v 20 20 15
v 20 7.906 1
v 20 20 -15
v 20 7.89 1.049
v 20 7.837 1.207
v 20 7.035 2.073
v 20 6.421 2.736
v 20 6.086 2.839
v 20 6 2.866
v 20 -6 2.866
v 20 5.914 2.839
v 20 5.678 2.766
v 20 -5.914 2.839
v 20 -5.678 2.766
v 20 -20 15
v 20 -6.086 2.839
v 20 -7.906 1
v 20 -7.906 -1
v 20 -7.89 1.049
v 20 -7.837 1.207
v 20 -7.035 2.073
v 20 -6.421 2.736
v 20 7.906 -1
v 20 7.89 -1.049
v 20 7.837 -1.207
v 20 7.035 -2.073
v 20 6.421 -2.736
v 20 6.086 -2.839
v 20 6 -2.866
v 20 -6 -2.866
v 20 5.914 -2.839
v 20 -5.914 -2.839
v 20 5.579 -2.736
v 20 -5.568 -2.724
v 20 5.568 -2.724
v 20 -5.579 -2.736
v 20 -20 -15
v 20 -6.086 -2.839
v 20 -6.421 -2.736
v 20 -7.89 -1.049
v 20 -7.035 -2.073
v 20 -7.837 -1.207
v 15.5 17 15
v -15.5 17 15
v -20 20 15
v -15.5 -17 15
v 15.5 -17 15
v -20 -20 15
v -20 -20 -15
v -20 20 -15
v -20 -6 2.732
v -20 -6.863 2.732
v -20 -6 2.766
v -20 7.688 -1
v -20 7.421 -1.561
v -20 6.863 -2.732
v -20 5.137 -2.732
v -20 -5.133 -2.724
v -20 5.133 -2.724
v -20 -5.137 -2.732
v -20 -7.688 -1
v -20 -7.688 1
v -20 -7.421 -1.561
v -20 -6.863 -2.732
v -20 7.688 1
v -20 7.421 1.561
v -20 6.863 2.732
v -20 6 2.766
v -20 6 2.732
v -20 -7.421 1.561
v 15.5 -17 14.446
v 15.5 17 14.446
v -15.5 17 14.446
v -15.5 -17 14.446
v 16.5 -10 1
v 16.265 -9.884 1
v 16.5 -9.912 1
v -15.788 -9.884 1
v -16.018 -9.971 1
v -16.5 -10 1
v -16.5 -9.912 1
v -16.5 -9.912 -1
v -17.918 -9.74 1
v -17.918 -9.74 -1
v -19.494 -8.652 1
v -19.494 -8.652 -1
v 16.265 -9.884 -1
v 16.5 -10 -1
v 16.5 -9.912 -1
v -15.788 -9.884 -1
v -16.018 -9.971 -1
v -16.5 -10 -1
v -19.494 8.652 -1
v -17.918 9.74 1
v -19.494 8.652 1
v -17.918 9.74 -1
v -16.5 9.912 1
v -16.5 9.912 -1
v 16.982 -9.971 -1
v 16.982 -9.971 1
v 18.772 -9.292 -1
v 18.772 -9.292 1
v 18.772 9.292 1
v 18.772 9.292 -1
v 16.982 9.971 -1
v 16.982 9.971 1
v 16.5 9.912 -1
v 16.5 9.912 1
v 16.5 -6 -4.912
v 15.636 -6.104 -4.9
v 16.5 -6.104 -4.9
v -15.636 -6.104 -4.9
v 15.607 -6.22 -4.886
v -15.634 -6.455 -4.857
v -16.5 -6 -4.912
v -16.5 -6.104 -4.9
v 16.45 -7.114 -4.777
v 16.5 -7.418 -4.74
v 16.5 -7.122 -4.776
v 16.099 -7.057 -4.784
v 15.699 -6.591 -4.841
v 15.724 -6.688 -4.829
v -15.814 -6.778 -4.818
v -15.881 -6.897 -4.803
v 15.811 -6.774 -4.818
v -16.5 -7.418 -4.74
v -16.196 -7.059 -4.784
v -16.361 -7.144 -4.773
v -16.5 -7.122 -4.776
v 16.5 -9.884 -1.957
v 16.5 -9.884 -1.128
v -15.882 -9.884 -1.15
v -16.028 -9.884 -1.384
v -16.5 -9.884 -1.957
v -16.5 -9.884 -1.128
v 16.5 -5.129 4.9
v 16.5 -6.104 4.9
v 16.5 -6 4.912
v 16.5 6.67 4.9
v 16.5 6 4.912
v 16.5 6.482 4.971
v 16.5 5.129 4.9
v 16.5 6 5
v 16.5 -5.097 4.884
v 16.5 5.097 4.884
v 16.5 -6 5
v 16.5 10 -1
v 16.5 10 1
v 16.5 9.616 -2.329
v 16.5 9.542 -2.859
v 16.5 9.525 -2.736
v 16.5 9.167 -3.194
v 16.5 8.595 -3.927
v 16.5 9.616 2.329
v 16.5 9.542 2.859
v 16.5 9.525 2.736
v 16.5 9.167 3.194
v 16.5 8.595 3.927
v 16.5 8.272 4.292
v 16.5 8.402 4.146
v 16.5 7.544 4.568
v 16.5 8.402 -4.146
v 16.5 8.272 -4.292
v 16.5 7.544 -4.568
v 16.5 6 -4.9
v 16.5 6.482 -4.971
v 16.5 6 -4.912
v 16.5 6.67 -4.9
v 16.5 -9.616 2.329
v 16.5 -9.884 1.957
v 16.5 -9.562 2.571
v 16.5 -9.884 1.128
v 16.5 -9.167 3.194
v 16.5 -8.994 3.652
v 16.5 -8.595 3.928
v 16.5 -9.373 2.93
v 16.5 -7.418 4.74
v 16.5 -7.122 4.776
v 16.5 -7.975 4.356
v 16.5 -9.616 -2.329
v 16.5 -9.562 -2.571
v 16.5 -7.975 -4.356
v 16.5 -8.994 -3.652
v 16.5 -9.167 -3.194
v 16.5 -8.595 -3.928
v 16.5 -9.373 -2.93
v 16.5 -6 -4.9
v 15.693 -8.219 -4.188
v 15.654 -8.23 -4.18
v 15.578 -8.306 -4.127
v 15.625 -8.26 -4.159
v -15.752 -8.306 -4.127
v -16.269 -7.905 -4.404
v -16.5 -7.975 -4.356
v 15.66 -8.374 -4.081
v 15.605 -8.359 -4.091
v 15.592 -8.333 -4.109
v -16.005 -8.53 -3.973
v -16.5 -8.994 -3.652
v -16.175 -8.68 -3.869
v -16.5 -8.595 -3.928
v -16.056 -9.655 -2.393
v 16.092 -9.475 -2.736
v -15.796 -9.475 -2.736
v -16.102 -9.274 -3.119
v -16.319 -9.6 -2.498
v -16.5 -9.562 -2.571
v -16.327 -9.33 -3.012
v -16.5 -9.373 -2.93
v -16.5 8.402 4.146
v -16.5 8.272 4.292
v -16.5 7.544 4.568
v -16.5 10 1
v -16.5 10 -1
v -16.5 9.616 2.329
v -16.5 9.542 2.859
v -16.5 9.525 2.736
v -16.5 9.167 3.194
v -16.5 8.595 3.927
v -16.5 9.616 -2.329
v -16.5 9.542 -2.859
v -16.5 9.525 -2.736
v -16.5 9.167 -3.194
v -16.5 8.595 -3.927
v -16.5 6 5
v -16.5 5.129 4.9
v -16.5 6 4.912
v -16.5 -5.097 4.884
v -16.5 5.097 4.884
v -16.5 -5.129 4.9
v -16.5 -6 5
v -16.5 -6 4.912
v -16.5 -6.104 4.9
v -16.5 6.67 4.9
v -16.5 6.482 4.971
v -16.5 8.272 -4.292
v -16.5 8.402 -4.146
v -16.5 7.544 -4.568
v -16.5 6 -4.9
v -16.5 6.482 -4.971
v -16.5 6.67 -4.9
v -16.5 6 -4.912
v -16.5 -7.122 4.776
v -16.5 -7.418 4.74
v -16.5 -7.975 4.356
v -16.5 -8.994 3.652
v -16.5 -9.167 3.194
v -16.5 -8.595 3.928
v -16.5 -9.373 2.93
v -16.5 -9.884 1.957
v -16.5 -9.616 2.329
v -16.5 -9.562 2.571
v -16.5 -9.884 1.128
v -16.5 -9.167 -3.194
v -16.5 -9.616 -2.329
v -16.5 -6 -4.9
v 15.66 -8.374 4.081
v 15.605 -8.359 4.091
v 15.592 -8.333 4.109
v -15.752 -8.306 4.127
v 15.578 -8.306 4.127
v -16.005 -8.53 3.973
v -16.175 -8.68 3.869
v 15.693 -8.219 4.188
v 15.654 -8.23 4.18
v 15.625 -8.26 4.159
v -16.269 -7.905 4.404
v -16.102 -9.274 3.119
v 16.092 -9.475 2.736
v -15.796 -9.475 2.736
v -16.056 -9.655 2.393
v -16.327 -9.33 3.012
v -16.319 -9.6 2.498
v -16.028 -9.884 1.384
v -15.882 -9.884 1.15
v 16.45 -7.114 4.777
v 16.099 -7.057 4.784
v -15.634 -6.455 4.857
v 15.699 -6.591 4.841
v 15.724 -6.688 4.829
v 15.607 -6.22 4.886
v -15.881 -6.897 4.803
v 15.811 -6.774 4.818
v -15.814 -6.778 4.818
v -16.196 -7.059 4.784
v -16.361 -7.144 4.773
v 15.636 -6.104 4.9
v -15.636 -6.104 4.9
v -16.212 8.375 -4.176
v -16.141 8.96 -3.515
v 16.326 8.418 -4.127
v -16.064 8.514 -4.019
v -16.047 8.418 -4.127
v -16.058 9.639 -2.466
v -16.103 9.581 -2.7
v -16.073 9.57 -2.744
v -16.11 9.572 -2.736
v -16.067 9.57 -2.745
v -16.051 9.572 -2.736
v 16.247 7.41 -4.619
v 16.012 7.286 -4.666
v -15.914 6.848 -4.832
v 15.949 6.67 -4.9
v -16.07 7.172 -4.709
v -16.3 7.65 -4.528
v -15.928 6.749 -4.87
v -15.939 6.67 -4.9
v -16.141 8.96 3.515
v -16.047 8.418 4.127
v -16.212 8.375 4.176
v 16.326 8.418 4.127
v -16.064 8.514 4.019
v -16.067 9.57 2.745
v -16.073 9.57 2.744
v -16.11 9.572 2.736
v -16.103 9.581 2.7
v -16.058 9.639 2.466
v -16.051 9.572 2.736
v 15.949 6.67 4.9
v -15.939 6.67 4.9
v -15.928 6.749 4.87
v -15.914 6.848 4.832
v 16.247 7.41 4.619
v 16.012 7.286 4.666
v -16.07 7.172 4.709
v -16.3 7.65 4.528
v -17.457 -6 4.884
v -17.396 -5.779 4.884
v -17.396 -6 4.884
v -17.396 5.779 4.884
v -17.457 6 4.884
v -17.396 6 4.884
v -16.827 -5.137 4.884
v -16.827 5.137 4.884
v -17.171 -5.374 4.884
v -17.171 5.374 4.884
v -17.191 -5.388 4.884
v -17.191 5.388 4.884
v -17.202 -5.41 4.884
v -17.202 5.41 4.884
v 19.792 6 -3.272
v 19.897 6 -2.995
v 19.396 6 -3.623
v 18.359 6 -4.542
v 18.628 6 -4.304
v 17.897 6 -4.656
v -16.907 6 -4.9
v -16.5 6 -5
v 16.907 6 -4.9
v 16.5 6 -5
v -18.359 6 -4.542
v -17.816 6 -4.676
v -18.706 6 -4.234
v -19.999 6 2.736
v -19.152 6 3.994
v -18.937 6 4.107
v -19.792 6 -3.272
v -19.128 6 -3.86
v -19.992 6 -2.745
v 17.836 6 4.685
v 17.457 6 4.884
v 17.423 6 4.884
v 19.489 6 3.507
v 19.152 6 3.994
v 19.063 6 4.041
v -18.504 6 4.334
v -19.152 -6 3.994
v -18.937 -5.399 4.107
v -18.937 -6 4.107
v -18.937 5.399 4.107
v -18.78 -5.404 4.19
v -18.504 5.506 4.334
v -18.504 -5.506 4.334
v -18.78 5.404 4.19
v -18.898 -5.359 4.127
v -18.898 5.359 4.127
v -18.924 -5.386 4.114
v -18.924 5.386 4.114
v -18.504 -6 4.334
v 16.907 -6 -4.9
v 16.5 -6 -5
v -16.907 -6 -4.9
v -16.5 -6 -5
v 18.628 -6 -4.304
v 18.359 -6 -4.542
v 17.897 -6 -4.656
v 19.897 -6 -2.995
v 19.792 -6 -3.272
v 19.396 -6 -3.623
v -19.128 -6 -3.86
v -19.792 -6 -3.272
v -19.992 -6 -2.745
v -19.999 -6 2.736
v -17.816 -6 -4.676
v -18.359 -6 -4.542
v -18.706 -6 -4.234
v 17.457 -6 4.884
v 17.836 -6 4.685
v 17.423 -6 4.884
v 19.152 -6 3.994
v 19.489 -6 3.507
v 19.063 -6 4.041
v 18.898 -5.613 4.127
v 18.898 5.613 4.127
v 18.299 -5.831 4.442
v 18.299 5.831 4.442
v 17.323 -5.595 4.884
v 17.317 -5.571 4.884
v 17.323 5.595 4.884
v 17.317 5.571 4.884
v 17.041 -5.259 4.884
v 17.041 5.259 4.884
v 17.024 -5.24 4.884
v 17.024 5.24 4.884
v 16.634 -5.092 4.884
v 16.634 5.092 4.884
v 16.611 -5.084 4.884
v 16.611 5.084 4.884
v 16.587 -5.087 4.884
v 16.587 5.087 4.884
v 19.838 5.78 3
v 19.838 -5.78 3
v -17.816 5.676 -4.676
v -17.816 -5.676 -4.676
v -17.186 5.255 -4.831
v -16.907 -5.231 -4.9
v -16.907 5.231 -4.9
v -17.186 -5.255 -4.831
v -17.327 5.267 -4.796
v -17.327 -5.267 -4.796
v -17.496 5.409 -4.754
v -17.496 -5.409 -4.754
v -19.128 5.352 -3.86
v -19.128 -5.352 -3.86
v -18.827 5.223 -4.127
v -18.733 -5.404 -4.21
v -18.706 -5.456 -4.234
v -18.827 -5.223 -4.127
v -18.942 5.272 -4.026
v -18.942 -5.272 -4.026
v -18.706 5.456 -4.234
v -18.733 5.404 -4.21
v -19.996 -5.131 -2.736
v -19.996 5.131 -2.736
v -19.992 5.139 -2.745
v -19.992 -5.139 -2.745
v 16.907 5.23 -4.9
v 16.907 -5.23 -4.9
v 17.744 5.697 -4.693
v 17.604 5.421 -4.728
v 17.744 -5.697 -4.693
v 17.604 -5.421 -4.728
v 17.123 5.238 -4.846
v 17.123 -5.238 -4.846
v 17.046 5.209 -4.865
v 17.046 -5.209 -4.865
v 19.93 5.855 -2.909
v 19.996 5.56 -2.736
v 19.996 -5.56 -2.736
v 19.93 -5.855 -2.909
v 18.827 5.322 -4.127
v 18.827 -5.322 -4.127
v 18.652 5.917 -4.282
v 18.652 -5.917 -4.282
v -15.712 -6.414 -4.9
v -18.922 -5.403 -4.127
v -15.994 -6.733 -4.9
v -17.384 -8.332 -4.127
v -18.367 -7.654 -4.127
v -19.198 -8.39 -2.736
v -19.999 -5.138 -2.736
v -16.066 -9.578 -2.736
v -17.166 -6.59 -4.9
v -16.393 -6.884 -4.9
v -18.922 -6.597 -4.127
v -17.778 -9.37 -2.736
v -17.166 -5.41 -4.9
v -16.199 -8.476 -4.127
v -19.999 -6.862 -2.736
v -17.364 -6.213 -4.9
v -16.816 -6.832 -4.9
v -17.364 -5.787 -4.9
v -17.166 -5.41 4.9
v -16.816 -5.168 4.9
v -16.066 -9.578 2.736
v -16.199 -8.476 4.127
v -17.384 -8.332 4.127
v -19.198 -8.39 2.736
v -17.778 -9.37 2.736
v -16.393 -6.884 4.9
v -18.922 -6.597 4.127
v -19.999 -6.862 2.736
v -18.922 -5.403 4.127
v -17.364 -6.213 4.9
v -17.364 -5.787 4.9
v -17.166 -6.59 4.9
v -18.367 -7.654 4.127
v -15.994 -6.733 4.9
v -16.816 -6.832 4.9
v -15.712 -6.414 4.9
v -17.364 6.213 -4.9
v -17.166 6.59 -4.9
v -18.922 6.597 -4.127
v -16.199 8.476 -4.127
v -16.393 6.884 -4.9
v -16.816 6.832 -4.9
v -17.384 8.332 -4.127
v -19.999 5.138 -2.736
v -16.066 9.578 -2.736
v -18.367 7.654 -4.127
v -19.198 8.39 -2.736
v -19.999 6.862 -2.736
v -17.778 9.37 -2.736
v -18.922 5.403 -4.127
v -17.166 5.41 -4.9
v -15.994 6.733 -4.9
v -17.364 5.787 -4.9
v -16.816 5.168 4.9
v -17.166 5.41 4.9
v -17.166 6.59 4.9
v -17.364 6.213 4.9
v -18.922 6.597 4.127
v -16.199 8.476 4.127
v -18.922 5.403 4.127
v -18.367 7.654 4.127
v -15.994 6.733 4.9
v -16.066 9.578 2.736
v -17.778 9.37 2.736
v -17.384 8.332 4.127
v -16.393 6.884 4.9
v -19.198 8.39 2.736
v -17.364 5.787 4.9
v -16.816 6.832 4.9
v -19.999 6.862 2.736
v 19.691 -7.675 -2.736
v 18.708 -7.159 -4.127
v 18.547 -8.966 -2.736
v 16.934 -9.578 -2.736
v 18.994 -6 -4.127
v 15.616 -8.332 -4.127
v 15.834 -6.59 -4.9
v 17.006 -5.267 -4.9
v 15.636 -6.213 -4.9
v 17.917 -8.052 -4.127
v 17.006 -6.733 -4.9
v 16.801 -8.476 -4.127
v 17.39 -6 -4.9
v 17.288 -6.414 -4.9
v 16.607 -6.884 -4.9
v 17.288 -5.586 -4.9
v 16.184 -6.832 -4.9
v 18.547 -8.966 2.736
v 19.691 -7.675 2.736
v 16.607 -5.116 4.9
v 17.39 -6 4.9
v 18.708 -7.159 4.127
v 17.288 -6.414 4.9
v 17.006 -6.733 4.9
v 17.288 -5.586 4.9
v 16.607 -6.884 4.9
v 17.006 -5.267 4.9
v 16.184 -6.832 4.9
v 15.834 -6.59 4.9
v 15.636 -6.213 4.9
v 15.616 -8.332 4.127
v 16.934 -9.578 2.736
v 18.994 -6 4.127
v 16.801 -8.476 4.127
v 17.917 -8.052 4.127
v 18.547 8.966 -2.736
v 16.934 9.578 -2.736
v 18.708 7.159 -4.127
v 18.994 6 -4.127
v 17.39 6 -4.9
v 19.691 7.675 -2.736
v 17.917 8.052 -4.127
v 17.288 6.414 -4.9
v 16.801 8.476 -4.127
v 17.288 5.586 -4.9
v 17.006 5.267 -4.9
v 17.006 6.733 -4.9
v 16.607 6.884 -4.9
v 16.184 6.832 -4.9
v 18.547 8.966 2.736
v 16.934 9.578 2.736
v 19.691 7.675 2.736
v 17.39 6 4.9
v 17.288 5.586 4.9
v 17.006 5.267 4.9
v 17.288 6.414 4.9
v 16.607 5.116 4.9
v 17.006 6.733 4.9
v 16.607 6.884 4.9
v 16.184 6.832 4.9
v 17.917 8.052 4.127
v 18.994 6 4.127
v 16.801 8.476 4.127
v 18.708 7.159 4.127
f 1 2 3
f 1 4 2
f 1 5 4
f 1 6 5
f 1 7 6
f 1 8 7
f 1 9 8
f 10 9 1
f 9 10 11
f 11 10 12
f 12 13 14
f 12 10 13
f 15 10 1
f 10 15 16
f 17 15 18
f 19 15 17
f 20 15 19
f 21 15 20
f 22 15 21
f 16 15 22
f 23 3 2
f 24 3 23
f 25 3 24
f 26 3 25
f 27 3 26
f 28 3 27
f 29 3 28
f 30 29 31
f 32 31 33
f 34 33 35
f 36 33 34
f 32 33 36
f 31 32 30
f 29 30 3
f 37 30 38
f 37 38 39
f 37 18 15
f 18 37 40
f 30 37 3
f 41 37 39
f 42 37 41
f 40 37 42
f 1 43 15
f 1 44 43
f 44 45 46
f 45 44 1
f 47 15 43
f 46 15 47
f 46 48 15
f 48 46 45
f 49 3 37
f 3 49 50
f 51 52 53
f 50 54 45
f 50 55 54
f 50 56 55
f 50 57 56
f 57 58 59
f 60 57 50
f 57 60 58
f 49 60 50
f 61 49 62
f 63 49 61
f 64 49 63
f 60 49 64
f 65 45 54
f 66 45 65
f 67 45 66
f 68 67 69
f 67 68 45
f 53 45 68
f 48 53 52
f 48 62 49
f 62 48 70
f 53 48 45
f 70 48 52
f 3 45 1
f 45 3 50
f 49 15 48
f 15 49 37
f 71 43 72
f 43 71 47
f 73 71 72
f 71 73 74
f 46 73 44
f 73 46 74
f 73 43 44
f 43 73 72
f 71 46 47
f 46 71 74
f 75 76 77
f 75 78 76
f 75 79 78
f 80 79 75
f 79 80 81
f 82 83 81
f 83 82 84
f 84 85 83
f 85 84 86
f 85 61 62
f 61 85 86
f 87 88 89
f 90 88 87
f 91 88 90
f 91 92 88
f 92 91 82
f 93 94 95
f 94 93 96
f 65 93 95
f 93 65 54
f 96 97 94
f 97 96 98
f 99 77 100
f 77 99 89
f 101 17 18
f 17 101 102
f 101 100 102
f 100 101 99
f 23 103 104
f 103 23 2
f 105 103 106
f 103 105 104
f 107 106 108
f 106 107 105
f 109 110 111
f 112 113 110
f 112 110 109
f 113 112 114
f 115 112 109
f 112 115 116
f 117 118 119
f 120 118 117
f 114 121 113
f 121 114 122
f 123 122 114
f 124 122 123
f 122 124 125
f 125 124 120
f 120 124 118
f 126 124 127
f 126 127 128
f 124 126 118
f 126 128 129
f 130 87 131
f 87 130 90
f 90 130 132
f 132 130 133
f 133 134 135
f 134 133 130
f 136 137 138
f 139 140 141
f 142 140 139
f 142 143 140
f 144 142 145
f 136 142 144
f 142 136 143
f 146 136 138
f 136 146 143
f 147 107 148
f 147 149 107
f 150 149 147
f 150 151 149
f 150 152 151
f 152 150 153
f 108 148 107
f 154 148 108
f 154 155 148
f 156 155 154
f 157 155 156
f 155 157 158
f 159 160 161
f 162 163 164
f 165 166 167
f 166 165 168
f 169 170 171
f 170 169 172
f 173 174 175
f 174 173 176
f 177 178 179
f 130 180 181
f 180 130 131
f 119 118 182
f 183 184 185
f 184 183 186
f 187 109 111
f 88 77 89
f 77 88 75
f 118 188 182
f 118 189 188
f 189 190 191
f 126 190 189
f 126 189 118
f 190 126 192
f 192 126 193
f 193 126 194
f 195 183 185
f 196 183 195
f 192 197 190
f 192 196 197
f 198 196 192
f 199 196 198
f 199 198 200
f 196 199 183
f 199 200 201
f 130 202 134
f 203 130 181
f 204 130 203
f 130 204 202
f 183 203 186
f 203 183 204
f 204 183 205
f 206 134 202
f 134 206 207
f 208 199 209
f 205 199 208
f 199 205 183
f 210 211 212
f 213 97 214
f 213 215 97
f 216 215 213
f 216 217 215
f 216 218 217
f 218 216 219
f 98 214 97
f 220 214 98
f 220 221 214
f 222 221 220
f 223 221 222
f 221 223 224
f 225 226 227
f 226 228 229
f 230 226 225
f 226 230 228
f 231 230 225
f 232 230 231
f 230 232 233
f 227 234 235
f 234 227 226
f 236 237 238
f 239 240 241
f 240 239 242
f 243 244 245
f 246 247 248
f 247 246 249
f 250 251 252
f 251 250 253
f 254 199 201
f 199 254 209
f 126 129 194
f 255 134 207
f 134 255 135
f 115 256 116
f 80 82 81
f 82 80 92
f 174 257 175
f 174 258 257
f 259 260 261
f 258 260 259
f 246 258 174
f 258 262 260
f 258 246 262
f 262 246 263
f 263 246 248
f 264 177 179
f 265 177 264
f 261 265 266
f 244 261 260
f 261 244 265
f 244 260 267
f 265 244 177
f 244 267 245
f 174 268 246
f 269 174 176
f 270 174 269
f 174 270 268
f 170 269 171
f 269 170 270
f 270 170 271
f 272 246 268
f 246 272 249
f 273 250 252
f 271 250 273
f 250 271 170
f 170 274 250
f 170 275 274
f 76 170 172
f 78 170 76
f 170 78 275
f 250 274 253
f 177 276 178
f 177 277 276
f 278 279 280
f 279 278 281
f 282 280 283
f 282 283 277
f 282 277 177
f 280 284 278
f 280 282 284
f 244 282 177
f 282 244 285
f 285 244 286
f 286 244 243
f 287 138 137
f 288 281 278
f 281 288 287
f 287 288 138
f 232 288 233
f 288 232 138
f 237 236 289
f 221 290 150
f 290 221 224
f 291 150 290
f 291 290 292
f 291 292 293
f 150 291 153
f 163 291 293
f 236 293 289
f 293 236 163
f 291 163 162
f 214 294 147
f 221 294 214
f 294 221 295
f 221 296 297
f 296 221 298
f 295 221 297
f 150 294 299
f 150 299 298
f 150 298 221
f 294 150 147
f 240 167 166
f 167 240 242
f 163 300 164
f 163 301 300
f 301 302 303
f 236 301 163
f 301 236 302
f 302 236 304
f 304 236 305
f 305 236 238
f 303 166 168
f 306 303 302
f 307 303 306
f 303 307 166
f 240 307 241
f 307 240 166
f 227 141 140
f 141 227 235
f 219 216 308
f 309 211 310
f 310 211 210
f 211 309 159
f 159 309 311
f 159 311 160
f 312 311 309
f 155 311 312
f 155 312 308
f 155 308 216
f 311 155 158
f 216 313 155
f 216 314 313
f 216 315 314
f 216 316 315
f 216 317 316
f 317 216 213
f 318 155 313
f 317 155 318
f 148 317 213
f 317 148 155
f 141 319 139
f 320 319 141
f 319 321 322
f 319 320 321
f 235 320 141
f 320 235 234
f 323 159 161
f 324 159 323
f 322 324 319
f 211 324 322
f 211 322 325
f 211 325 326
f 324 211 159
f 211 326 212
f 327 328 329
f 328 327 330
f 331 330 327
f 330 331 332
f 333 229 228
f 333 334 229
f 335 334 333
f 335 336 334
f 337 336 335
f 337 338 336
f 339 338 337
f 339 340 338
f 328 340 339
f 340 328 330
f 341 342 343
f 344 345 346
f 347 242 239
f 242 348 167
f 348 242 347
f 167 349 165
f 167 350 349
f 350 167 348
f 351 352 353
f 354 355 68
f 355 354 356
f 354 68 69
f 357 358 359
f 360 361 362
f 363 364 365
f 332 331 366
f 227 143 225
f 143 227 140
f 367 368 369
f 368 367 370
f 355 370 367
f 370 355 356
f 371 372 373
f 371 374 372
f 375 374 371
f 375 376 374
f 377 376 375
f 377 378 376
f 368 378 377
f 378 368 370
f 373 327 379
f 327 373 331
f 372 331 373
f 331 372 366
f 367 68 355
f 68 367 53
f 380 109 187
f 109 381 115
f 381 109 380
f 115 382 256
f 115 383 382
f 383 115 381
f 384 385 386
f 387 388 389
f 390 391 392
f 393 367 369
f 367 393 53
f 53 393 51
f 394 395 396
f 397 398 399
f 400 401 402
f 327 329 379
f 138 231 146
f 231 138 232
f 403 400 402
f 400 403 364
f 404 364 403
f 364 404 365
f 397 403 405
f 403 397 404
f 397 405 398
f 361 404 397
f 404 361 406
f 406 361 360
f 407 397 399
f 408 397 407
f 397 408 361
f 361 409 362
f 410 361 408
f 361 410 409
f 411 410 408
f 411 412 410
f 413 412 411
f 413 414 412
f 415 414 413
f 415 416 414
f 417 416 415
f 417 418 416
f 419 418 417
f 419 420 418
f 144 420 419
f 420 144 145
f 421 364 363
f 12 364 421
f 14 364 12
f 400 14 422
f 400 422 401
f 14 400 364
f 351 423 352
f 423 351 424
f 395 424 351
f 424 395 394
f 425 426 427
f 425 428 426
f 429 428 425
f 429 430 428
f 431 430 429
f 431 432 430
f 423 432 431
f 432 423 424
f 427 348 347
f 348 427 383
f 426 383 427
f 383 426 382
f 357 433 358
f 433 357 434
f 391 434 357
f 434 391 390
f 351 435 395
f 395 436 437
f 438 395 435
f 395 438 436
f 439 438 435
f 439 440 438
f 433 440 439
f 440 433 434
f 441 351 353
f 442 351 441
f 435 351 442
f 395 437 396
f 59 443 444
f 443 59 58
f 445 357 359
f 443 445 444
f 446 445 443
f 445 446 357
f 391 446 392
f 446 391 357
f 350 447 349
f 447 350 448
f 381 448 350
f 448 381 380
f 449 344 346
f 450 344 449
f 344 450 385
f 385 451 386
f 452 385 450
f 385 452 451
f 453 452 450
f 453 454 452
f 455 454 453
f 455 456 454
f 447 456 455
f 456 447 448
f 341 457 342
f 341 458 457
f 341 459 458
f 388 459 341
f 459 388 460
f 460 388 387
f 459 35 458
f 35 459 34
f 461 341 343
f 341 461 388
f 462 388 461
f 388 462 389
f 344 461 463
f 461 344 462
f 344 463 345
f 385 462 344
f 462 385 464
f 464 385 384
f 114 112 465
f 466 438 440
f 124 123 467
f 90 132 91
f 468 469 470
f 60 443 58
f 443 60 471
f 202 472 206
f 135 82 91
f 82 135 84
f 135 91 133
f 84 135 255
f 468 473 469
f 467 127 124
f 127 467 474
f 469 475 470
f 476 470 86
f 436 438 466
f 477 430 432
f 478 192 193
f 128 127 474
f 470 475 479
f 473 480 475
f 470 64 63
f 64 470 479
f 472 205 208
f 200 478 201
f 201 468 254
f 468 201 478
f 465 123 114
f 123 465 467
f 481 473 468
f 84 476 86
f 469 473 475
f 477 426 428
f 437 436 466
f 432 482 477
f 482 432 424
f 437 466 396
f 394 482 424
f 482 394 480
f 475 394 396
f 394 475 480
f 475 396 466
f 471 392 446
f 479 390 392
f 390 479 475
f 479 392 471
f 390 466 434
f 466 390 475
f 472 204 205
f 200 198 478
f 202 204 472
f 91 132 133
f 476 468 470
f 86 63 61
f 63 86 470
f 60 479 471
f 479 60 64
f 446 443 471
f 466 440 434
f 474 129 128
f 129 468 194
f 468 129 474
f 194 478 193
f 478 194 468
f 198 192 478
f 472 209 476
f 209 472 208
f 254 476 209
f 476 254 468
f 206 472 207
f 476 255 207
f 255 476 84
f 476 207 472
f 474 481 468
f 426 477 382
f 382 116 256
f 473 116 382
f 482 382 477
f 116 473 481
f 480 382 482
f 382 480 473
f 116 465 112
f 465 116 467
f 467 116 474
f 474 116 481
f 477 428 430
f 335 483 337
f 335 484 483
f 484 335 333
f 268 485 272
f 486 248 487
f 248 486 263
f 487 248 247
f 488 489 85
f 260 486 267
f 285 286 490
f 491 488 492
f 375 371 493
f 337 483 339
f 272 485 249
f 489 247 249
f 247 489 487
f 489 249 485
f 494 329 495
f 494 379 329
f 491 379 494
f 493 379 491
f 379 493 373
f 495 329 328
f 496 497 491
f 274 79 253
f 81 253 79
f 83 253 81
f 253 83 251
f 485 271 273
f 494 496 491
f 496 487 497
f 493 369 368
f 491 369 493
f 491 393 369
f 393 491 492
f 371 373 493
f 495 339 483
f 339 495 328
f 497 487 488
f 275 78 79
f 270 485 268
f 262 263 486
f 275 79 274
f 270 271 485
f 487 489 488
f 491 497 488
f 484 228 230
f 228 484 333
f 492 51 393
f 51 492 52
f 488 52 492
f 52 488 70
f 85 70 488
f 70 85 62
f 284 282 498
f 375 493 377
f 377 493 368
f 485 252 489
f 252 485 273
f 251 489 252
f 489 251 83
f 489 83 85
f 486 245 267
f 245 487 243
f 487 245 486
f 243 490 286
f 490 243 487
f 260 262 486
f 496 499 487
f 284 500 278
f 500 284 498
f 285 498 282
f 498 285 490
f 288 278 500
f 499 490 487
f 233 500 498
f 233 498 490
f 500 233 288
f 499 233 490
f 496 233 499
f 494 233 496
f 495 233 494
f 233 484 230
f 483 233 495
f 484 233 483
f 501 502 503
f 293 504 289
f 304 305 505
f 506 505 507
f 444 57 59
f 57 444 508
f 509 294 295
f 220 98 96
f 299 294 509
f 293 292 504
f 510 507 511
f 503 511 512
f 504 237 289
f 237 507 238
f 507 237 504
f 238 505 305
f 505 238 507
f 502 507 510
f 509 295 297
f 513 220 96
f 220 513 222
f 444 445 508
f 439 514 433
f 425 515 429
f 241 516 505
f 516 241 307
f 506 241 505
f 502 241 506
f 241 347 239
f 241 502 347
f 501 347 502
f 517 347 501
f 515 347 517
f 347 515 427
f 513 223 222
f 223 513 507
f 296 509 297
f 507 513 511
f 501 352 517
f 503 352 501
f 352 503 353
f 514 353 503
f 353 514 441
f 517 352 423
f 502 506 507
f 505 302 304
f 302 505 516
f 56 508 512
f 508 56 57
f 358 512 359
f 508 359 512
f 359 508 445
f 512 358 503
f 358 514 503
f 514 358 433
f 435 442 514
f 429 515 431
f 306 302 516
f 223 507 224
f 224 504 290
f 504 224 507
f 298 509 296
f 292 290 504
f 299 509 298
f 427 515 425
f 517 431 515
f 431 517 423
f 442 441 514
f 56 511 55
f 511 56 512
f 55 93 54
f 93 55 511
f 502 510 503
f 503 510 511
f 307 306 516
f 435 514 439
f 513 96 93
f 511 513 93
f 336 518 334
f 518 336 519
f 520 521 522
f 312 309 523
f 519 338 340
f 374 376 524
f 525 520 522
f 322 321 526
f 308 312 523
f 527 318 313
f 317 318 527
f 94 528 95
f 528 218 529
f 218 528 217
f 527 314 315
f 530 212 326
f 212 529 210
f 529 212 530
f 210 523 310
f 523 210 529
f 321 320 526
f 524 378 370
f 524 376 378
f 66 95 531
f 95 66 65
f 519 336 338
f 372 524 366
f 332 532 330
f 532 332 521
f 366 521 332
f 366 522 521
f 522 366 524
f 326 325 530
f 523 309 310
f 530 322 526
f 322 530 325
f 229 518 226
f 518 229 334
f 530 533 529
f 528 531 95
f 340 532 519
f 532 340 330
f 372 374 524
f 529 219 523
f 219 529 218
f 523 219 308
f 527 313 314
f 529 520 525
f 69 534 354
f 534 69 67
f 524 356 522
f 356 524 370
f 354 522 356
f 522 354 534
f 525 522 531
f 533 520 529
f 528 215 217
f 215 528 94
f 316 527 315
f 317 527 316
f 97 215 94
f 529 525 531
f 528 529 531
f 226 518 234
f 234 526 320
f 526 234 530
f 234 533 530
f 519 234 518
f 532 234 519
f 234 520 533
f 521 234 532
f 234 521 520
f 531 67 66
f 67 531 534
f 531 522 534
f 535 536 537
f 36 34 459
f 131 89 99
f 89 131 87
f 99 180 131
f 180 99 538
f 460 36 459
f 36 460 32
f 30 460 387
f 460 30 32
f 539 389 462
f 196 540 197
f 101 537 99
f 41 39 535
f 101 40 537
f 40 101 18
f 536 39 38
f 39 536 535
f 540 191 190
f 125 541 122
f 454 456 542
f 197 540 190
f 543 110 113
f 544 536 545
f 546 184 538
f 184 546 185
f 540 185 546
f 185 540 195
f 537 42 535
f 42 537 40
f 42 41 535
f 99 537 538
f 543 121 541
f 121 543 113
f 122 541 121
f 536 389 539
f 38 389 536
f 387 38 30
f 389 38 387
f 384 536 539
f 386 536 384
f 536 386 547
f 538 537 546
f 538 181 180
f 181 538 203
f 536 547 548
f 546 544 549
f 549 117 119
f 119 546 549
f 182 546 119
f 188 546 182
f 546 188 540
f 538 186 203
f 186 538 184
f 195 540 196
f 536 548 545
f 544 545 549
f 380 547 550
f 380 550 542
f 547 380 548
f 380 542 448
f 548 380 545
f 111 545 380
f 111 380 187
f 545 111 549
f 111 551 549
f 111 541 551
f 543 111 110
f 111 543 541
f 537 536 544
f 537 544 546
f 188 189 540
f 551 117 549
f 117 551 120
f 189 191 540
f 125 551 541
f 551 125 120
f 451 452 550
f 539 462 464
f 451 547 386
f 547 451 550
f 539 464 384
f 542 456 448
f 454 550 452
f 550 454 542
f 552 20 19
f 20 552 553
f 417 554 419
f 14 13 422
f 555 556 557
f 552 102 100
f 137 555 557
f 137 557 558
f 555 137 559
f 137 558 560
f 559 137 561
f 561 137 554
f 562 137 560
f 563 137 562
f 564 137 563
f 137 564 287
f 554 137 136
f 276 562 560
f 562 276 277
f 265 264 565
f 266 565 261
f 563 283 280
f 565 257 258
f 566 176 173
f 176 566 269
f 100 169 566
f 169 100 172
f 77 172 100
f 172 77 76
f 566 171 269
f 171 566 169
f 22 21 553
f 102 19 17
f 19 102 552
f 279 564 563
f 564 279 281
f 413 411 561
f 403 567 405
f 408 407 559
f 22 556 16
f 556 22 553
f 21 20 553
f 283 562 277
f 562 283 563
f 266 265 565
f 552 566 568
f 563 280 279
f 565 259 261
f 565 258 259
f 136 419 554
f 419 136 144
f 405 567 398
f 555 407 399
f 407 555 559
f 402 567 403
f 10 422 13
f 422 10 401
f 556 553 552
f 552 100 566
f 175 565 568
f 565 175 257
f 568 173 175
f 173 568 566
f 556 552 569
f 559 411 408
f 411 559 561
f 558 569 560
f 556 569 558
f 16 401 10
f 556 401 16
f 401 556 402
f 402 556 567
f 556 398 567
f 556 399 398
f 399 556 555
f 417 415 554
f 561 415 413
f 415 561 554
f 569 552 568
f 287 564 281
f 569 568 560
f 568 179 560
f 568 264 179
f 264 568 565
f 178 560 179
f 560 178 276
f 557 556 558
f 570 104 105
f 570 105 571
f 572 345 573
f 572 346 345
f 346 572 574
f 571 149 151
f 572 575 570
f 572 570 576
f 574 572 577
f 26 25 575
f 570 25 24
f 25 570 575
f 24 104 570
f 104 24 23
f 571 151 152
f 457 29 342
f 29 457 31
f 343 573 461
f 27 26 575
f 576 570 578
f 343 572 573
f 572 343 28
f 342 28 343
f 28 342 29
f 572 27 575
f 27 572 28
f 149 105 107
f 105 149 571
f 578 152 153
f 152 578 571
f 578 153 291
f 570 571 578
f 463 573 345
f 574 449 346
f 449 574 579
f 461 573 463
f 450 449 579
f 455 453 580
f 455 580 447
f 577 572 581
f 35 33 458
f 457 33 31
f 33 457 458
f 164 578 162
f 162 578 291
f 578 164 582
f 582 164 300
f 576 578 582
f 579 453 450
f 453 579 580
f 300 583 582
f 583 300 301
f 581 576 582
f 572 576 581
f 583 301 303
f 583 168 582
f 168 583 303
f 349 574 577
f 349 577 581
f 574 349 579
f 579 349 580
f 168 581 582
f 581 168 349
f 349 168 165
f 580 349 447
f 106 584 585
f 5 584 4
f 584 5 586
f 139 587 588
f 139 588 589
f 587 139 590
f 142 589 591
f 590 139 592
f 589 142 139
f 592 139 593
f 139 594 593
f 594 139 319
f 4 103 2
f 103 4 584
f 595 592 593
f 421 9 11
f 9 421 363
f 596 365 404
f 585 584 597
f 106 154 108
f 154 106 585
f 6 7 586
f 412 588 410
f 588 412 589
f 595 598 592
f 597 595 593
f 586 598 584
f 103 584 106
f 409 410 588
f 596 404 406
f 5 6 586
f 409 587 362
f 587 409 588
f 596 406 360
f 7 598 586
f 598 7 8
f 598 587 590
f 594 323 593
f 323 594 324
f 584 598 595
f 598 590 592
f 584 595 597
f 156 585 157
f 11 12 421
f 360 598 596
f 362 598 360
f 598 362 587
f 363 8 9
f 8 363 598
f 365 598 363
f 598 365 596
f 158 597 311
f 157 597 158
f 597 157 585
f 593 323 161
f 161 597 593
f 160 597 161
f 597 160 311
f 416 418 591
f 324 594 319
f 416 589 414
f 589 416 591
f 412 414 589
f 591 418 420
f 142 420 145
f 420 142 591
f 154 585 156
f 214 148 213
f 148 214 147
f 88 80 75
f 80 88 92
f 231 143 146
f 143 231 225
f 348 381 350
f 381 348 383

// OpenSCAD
 
 use <MCAD/boxes.scad>
 
 

 module Substrate_holder(x,y,z)
 {
     difference(){
     difference(){
   cube([x,y,z],center=true);
         {translate([0,0,15+0.001])
    cube([31,34,1.11],center=true); }
         
     }
     
      rotate([0,0,0]) 
    { roundedBox(size=[x+1,y-20,z-20],radius=4,, center=true);
    }
 
 }
     }
 
 Substrate_holder(40,40,30);
